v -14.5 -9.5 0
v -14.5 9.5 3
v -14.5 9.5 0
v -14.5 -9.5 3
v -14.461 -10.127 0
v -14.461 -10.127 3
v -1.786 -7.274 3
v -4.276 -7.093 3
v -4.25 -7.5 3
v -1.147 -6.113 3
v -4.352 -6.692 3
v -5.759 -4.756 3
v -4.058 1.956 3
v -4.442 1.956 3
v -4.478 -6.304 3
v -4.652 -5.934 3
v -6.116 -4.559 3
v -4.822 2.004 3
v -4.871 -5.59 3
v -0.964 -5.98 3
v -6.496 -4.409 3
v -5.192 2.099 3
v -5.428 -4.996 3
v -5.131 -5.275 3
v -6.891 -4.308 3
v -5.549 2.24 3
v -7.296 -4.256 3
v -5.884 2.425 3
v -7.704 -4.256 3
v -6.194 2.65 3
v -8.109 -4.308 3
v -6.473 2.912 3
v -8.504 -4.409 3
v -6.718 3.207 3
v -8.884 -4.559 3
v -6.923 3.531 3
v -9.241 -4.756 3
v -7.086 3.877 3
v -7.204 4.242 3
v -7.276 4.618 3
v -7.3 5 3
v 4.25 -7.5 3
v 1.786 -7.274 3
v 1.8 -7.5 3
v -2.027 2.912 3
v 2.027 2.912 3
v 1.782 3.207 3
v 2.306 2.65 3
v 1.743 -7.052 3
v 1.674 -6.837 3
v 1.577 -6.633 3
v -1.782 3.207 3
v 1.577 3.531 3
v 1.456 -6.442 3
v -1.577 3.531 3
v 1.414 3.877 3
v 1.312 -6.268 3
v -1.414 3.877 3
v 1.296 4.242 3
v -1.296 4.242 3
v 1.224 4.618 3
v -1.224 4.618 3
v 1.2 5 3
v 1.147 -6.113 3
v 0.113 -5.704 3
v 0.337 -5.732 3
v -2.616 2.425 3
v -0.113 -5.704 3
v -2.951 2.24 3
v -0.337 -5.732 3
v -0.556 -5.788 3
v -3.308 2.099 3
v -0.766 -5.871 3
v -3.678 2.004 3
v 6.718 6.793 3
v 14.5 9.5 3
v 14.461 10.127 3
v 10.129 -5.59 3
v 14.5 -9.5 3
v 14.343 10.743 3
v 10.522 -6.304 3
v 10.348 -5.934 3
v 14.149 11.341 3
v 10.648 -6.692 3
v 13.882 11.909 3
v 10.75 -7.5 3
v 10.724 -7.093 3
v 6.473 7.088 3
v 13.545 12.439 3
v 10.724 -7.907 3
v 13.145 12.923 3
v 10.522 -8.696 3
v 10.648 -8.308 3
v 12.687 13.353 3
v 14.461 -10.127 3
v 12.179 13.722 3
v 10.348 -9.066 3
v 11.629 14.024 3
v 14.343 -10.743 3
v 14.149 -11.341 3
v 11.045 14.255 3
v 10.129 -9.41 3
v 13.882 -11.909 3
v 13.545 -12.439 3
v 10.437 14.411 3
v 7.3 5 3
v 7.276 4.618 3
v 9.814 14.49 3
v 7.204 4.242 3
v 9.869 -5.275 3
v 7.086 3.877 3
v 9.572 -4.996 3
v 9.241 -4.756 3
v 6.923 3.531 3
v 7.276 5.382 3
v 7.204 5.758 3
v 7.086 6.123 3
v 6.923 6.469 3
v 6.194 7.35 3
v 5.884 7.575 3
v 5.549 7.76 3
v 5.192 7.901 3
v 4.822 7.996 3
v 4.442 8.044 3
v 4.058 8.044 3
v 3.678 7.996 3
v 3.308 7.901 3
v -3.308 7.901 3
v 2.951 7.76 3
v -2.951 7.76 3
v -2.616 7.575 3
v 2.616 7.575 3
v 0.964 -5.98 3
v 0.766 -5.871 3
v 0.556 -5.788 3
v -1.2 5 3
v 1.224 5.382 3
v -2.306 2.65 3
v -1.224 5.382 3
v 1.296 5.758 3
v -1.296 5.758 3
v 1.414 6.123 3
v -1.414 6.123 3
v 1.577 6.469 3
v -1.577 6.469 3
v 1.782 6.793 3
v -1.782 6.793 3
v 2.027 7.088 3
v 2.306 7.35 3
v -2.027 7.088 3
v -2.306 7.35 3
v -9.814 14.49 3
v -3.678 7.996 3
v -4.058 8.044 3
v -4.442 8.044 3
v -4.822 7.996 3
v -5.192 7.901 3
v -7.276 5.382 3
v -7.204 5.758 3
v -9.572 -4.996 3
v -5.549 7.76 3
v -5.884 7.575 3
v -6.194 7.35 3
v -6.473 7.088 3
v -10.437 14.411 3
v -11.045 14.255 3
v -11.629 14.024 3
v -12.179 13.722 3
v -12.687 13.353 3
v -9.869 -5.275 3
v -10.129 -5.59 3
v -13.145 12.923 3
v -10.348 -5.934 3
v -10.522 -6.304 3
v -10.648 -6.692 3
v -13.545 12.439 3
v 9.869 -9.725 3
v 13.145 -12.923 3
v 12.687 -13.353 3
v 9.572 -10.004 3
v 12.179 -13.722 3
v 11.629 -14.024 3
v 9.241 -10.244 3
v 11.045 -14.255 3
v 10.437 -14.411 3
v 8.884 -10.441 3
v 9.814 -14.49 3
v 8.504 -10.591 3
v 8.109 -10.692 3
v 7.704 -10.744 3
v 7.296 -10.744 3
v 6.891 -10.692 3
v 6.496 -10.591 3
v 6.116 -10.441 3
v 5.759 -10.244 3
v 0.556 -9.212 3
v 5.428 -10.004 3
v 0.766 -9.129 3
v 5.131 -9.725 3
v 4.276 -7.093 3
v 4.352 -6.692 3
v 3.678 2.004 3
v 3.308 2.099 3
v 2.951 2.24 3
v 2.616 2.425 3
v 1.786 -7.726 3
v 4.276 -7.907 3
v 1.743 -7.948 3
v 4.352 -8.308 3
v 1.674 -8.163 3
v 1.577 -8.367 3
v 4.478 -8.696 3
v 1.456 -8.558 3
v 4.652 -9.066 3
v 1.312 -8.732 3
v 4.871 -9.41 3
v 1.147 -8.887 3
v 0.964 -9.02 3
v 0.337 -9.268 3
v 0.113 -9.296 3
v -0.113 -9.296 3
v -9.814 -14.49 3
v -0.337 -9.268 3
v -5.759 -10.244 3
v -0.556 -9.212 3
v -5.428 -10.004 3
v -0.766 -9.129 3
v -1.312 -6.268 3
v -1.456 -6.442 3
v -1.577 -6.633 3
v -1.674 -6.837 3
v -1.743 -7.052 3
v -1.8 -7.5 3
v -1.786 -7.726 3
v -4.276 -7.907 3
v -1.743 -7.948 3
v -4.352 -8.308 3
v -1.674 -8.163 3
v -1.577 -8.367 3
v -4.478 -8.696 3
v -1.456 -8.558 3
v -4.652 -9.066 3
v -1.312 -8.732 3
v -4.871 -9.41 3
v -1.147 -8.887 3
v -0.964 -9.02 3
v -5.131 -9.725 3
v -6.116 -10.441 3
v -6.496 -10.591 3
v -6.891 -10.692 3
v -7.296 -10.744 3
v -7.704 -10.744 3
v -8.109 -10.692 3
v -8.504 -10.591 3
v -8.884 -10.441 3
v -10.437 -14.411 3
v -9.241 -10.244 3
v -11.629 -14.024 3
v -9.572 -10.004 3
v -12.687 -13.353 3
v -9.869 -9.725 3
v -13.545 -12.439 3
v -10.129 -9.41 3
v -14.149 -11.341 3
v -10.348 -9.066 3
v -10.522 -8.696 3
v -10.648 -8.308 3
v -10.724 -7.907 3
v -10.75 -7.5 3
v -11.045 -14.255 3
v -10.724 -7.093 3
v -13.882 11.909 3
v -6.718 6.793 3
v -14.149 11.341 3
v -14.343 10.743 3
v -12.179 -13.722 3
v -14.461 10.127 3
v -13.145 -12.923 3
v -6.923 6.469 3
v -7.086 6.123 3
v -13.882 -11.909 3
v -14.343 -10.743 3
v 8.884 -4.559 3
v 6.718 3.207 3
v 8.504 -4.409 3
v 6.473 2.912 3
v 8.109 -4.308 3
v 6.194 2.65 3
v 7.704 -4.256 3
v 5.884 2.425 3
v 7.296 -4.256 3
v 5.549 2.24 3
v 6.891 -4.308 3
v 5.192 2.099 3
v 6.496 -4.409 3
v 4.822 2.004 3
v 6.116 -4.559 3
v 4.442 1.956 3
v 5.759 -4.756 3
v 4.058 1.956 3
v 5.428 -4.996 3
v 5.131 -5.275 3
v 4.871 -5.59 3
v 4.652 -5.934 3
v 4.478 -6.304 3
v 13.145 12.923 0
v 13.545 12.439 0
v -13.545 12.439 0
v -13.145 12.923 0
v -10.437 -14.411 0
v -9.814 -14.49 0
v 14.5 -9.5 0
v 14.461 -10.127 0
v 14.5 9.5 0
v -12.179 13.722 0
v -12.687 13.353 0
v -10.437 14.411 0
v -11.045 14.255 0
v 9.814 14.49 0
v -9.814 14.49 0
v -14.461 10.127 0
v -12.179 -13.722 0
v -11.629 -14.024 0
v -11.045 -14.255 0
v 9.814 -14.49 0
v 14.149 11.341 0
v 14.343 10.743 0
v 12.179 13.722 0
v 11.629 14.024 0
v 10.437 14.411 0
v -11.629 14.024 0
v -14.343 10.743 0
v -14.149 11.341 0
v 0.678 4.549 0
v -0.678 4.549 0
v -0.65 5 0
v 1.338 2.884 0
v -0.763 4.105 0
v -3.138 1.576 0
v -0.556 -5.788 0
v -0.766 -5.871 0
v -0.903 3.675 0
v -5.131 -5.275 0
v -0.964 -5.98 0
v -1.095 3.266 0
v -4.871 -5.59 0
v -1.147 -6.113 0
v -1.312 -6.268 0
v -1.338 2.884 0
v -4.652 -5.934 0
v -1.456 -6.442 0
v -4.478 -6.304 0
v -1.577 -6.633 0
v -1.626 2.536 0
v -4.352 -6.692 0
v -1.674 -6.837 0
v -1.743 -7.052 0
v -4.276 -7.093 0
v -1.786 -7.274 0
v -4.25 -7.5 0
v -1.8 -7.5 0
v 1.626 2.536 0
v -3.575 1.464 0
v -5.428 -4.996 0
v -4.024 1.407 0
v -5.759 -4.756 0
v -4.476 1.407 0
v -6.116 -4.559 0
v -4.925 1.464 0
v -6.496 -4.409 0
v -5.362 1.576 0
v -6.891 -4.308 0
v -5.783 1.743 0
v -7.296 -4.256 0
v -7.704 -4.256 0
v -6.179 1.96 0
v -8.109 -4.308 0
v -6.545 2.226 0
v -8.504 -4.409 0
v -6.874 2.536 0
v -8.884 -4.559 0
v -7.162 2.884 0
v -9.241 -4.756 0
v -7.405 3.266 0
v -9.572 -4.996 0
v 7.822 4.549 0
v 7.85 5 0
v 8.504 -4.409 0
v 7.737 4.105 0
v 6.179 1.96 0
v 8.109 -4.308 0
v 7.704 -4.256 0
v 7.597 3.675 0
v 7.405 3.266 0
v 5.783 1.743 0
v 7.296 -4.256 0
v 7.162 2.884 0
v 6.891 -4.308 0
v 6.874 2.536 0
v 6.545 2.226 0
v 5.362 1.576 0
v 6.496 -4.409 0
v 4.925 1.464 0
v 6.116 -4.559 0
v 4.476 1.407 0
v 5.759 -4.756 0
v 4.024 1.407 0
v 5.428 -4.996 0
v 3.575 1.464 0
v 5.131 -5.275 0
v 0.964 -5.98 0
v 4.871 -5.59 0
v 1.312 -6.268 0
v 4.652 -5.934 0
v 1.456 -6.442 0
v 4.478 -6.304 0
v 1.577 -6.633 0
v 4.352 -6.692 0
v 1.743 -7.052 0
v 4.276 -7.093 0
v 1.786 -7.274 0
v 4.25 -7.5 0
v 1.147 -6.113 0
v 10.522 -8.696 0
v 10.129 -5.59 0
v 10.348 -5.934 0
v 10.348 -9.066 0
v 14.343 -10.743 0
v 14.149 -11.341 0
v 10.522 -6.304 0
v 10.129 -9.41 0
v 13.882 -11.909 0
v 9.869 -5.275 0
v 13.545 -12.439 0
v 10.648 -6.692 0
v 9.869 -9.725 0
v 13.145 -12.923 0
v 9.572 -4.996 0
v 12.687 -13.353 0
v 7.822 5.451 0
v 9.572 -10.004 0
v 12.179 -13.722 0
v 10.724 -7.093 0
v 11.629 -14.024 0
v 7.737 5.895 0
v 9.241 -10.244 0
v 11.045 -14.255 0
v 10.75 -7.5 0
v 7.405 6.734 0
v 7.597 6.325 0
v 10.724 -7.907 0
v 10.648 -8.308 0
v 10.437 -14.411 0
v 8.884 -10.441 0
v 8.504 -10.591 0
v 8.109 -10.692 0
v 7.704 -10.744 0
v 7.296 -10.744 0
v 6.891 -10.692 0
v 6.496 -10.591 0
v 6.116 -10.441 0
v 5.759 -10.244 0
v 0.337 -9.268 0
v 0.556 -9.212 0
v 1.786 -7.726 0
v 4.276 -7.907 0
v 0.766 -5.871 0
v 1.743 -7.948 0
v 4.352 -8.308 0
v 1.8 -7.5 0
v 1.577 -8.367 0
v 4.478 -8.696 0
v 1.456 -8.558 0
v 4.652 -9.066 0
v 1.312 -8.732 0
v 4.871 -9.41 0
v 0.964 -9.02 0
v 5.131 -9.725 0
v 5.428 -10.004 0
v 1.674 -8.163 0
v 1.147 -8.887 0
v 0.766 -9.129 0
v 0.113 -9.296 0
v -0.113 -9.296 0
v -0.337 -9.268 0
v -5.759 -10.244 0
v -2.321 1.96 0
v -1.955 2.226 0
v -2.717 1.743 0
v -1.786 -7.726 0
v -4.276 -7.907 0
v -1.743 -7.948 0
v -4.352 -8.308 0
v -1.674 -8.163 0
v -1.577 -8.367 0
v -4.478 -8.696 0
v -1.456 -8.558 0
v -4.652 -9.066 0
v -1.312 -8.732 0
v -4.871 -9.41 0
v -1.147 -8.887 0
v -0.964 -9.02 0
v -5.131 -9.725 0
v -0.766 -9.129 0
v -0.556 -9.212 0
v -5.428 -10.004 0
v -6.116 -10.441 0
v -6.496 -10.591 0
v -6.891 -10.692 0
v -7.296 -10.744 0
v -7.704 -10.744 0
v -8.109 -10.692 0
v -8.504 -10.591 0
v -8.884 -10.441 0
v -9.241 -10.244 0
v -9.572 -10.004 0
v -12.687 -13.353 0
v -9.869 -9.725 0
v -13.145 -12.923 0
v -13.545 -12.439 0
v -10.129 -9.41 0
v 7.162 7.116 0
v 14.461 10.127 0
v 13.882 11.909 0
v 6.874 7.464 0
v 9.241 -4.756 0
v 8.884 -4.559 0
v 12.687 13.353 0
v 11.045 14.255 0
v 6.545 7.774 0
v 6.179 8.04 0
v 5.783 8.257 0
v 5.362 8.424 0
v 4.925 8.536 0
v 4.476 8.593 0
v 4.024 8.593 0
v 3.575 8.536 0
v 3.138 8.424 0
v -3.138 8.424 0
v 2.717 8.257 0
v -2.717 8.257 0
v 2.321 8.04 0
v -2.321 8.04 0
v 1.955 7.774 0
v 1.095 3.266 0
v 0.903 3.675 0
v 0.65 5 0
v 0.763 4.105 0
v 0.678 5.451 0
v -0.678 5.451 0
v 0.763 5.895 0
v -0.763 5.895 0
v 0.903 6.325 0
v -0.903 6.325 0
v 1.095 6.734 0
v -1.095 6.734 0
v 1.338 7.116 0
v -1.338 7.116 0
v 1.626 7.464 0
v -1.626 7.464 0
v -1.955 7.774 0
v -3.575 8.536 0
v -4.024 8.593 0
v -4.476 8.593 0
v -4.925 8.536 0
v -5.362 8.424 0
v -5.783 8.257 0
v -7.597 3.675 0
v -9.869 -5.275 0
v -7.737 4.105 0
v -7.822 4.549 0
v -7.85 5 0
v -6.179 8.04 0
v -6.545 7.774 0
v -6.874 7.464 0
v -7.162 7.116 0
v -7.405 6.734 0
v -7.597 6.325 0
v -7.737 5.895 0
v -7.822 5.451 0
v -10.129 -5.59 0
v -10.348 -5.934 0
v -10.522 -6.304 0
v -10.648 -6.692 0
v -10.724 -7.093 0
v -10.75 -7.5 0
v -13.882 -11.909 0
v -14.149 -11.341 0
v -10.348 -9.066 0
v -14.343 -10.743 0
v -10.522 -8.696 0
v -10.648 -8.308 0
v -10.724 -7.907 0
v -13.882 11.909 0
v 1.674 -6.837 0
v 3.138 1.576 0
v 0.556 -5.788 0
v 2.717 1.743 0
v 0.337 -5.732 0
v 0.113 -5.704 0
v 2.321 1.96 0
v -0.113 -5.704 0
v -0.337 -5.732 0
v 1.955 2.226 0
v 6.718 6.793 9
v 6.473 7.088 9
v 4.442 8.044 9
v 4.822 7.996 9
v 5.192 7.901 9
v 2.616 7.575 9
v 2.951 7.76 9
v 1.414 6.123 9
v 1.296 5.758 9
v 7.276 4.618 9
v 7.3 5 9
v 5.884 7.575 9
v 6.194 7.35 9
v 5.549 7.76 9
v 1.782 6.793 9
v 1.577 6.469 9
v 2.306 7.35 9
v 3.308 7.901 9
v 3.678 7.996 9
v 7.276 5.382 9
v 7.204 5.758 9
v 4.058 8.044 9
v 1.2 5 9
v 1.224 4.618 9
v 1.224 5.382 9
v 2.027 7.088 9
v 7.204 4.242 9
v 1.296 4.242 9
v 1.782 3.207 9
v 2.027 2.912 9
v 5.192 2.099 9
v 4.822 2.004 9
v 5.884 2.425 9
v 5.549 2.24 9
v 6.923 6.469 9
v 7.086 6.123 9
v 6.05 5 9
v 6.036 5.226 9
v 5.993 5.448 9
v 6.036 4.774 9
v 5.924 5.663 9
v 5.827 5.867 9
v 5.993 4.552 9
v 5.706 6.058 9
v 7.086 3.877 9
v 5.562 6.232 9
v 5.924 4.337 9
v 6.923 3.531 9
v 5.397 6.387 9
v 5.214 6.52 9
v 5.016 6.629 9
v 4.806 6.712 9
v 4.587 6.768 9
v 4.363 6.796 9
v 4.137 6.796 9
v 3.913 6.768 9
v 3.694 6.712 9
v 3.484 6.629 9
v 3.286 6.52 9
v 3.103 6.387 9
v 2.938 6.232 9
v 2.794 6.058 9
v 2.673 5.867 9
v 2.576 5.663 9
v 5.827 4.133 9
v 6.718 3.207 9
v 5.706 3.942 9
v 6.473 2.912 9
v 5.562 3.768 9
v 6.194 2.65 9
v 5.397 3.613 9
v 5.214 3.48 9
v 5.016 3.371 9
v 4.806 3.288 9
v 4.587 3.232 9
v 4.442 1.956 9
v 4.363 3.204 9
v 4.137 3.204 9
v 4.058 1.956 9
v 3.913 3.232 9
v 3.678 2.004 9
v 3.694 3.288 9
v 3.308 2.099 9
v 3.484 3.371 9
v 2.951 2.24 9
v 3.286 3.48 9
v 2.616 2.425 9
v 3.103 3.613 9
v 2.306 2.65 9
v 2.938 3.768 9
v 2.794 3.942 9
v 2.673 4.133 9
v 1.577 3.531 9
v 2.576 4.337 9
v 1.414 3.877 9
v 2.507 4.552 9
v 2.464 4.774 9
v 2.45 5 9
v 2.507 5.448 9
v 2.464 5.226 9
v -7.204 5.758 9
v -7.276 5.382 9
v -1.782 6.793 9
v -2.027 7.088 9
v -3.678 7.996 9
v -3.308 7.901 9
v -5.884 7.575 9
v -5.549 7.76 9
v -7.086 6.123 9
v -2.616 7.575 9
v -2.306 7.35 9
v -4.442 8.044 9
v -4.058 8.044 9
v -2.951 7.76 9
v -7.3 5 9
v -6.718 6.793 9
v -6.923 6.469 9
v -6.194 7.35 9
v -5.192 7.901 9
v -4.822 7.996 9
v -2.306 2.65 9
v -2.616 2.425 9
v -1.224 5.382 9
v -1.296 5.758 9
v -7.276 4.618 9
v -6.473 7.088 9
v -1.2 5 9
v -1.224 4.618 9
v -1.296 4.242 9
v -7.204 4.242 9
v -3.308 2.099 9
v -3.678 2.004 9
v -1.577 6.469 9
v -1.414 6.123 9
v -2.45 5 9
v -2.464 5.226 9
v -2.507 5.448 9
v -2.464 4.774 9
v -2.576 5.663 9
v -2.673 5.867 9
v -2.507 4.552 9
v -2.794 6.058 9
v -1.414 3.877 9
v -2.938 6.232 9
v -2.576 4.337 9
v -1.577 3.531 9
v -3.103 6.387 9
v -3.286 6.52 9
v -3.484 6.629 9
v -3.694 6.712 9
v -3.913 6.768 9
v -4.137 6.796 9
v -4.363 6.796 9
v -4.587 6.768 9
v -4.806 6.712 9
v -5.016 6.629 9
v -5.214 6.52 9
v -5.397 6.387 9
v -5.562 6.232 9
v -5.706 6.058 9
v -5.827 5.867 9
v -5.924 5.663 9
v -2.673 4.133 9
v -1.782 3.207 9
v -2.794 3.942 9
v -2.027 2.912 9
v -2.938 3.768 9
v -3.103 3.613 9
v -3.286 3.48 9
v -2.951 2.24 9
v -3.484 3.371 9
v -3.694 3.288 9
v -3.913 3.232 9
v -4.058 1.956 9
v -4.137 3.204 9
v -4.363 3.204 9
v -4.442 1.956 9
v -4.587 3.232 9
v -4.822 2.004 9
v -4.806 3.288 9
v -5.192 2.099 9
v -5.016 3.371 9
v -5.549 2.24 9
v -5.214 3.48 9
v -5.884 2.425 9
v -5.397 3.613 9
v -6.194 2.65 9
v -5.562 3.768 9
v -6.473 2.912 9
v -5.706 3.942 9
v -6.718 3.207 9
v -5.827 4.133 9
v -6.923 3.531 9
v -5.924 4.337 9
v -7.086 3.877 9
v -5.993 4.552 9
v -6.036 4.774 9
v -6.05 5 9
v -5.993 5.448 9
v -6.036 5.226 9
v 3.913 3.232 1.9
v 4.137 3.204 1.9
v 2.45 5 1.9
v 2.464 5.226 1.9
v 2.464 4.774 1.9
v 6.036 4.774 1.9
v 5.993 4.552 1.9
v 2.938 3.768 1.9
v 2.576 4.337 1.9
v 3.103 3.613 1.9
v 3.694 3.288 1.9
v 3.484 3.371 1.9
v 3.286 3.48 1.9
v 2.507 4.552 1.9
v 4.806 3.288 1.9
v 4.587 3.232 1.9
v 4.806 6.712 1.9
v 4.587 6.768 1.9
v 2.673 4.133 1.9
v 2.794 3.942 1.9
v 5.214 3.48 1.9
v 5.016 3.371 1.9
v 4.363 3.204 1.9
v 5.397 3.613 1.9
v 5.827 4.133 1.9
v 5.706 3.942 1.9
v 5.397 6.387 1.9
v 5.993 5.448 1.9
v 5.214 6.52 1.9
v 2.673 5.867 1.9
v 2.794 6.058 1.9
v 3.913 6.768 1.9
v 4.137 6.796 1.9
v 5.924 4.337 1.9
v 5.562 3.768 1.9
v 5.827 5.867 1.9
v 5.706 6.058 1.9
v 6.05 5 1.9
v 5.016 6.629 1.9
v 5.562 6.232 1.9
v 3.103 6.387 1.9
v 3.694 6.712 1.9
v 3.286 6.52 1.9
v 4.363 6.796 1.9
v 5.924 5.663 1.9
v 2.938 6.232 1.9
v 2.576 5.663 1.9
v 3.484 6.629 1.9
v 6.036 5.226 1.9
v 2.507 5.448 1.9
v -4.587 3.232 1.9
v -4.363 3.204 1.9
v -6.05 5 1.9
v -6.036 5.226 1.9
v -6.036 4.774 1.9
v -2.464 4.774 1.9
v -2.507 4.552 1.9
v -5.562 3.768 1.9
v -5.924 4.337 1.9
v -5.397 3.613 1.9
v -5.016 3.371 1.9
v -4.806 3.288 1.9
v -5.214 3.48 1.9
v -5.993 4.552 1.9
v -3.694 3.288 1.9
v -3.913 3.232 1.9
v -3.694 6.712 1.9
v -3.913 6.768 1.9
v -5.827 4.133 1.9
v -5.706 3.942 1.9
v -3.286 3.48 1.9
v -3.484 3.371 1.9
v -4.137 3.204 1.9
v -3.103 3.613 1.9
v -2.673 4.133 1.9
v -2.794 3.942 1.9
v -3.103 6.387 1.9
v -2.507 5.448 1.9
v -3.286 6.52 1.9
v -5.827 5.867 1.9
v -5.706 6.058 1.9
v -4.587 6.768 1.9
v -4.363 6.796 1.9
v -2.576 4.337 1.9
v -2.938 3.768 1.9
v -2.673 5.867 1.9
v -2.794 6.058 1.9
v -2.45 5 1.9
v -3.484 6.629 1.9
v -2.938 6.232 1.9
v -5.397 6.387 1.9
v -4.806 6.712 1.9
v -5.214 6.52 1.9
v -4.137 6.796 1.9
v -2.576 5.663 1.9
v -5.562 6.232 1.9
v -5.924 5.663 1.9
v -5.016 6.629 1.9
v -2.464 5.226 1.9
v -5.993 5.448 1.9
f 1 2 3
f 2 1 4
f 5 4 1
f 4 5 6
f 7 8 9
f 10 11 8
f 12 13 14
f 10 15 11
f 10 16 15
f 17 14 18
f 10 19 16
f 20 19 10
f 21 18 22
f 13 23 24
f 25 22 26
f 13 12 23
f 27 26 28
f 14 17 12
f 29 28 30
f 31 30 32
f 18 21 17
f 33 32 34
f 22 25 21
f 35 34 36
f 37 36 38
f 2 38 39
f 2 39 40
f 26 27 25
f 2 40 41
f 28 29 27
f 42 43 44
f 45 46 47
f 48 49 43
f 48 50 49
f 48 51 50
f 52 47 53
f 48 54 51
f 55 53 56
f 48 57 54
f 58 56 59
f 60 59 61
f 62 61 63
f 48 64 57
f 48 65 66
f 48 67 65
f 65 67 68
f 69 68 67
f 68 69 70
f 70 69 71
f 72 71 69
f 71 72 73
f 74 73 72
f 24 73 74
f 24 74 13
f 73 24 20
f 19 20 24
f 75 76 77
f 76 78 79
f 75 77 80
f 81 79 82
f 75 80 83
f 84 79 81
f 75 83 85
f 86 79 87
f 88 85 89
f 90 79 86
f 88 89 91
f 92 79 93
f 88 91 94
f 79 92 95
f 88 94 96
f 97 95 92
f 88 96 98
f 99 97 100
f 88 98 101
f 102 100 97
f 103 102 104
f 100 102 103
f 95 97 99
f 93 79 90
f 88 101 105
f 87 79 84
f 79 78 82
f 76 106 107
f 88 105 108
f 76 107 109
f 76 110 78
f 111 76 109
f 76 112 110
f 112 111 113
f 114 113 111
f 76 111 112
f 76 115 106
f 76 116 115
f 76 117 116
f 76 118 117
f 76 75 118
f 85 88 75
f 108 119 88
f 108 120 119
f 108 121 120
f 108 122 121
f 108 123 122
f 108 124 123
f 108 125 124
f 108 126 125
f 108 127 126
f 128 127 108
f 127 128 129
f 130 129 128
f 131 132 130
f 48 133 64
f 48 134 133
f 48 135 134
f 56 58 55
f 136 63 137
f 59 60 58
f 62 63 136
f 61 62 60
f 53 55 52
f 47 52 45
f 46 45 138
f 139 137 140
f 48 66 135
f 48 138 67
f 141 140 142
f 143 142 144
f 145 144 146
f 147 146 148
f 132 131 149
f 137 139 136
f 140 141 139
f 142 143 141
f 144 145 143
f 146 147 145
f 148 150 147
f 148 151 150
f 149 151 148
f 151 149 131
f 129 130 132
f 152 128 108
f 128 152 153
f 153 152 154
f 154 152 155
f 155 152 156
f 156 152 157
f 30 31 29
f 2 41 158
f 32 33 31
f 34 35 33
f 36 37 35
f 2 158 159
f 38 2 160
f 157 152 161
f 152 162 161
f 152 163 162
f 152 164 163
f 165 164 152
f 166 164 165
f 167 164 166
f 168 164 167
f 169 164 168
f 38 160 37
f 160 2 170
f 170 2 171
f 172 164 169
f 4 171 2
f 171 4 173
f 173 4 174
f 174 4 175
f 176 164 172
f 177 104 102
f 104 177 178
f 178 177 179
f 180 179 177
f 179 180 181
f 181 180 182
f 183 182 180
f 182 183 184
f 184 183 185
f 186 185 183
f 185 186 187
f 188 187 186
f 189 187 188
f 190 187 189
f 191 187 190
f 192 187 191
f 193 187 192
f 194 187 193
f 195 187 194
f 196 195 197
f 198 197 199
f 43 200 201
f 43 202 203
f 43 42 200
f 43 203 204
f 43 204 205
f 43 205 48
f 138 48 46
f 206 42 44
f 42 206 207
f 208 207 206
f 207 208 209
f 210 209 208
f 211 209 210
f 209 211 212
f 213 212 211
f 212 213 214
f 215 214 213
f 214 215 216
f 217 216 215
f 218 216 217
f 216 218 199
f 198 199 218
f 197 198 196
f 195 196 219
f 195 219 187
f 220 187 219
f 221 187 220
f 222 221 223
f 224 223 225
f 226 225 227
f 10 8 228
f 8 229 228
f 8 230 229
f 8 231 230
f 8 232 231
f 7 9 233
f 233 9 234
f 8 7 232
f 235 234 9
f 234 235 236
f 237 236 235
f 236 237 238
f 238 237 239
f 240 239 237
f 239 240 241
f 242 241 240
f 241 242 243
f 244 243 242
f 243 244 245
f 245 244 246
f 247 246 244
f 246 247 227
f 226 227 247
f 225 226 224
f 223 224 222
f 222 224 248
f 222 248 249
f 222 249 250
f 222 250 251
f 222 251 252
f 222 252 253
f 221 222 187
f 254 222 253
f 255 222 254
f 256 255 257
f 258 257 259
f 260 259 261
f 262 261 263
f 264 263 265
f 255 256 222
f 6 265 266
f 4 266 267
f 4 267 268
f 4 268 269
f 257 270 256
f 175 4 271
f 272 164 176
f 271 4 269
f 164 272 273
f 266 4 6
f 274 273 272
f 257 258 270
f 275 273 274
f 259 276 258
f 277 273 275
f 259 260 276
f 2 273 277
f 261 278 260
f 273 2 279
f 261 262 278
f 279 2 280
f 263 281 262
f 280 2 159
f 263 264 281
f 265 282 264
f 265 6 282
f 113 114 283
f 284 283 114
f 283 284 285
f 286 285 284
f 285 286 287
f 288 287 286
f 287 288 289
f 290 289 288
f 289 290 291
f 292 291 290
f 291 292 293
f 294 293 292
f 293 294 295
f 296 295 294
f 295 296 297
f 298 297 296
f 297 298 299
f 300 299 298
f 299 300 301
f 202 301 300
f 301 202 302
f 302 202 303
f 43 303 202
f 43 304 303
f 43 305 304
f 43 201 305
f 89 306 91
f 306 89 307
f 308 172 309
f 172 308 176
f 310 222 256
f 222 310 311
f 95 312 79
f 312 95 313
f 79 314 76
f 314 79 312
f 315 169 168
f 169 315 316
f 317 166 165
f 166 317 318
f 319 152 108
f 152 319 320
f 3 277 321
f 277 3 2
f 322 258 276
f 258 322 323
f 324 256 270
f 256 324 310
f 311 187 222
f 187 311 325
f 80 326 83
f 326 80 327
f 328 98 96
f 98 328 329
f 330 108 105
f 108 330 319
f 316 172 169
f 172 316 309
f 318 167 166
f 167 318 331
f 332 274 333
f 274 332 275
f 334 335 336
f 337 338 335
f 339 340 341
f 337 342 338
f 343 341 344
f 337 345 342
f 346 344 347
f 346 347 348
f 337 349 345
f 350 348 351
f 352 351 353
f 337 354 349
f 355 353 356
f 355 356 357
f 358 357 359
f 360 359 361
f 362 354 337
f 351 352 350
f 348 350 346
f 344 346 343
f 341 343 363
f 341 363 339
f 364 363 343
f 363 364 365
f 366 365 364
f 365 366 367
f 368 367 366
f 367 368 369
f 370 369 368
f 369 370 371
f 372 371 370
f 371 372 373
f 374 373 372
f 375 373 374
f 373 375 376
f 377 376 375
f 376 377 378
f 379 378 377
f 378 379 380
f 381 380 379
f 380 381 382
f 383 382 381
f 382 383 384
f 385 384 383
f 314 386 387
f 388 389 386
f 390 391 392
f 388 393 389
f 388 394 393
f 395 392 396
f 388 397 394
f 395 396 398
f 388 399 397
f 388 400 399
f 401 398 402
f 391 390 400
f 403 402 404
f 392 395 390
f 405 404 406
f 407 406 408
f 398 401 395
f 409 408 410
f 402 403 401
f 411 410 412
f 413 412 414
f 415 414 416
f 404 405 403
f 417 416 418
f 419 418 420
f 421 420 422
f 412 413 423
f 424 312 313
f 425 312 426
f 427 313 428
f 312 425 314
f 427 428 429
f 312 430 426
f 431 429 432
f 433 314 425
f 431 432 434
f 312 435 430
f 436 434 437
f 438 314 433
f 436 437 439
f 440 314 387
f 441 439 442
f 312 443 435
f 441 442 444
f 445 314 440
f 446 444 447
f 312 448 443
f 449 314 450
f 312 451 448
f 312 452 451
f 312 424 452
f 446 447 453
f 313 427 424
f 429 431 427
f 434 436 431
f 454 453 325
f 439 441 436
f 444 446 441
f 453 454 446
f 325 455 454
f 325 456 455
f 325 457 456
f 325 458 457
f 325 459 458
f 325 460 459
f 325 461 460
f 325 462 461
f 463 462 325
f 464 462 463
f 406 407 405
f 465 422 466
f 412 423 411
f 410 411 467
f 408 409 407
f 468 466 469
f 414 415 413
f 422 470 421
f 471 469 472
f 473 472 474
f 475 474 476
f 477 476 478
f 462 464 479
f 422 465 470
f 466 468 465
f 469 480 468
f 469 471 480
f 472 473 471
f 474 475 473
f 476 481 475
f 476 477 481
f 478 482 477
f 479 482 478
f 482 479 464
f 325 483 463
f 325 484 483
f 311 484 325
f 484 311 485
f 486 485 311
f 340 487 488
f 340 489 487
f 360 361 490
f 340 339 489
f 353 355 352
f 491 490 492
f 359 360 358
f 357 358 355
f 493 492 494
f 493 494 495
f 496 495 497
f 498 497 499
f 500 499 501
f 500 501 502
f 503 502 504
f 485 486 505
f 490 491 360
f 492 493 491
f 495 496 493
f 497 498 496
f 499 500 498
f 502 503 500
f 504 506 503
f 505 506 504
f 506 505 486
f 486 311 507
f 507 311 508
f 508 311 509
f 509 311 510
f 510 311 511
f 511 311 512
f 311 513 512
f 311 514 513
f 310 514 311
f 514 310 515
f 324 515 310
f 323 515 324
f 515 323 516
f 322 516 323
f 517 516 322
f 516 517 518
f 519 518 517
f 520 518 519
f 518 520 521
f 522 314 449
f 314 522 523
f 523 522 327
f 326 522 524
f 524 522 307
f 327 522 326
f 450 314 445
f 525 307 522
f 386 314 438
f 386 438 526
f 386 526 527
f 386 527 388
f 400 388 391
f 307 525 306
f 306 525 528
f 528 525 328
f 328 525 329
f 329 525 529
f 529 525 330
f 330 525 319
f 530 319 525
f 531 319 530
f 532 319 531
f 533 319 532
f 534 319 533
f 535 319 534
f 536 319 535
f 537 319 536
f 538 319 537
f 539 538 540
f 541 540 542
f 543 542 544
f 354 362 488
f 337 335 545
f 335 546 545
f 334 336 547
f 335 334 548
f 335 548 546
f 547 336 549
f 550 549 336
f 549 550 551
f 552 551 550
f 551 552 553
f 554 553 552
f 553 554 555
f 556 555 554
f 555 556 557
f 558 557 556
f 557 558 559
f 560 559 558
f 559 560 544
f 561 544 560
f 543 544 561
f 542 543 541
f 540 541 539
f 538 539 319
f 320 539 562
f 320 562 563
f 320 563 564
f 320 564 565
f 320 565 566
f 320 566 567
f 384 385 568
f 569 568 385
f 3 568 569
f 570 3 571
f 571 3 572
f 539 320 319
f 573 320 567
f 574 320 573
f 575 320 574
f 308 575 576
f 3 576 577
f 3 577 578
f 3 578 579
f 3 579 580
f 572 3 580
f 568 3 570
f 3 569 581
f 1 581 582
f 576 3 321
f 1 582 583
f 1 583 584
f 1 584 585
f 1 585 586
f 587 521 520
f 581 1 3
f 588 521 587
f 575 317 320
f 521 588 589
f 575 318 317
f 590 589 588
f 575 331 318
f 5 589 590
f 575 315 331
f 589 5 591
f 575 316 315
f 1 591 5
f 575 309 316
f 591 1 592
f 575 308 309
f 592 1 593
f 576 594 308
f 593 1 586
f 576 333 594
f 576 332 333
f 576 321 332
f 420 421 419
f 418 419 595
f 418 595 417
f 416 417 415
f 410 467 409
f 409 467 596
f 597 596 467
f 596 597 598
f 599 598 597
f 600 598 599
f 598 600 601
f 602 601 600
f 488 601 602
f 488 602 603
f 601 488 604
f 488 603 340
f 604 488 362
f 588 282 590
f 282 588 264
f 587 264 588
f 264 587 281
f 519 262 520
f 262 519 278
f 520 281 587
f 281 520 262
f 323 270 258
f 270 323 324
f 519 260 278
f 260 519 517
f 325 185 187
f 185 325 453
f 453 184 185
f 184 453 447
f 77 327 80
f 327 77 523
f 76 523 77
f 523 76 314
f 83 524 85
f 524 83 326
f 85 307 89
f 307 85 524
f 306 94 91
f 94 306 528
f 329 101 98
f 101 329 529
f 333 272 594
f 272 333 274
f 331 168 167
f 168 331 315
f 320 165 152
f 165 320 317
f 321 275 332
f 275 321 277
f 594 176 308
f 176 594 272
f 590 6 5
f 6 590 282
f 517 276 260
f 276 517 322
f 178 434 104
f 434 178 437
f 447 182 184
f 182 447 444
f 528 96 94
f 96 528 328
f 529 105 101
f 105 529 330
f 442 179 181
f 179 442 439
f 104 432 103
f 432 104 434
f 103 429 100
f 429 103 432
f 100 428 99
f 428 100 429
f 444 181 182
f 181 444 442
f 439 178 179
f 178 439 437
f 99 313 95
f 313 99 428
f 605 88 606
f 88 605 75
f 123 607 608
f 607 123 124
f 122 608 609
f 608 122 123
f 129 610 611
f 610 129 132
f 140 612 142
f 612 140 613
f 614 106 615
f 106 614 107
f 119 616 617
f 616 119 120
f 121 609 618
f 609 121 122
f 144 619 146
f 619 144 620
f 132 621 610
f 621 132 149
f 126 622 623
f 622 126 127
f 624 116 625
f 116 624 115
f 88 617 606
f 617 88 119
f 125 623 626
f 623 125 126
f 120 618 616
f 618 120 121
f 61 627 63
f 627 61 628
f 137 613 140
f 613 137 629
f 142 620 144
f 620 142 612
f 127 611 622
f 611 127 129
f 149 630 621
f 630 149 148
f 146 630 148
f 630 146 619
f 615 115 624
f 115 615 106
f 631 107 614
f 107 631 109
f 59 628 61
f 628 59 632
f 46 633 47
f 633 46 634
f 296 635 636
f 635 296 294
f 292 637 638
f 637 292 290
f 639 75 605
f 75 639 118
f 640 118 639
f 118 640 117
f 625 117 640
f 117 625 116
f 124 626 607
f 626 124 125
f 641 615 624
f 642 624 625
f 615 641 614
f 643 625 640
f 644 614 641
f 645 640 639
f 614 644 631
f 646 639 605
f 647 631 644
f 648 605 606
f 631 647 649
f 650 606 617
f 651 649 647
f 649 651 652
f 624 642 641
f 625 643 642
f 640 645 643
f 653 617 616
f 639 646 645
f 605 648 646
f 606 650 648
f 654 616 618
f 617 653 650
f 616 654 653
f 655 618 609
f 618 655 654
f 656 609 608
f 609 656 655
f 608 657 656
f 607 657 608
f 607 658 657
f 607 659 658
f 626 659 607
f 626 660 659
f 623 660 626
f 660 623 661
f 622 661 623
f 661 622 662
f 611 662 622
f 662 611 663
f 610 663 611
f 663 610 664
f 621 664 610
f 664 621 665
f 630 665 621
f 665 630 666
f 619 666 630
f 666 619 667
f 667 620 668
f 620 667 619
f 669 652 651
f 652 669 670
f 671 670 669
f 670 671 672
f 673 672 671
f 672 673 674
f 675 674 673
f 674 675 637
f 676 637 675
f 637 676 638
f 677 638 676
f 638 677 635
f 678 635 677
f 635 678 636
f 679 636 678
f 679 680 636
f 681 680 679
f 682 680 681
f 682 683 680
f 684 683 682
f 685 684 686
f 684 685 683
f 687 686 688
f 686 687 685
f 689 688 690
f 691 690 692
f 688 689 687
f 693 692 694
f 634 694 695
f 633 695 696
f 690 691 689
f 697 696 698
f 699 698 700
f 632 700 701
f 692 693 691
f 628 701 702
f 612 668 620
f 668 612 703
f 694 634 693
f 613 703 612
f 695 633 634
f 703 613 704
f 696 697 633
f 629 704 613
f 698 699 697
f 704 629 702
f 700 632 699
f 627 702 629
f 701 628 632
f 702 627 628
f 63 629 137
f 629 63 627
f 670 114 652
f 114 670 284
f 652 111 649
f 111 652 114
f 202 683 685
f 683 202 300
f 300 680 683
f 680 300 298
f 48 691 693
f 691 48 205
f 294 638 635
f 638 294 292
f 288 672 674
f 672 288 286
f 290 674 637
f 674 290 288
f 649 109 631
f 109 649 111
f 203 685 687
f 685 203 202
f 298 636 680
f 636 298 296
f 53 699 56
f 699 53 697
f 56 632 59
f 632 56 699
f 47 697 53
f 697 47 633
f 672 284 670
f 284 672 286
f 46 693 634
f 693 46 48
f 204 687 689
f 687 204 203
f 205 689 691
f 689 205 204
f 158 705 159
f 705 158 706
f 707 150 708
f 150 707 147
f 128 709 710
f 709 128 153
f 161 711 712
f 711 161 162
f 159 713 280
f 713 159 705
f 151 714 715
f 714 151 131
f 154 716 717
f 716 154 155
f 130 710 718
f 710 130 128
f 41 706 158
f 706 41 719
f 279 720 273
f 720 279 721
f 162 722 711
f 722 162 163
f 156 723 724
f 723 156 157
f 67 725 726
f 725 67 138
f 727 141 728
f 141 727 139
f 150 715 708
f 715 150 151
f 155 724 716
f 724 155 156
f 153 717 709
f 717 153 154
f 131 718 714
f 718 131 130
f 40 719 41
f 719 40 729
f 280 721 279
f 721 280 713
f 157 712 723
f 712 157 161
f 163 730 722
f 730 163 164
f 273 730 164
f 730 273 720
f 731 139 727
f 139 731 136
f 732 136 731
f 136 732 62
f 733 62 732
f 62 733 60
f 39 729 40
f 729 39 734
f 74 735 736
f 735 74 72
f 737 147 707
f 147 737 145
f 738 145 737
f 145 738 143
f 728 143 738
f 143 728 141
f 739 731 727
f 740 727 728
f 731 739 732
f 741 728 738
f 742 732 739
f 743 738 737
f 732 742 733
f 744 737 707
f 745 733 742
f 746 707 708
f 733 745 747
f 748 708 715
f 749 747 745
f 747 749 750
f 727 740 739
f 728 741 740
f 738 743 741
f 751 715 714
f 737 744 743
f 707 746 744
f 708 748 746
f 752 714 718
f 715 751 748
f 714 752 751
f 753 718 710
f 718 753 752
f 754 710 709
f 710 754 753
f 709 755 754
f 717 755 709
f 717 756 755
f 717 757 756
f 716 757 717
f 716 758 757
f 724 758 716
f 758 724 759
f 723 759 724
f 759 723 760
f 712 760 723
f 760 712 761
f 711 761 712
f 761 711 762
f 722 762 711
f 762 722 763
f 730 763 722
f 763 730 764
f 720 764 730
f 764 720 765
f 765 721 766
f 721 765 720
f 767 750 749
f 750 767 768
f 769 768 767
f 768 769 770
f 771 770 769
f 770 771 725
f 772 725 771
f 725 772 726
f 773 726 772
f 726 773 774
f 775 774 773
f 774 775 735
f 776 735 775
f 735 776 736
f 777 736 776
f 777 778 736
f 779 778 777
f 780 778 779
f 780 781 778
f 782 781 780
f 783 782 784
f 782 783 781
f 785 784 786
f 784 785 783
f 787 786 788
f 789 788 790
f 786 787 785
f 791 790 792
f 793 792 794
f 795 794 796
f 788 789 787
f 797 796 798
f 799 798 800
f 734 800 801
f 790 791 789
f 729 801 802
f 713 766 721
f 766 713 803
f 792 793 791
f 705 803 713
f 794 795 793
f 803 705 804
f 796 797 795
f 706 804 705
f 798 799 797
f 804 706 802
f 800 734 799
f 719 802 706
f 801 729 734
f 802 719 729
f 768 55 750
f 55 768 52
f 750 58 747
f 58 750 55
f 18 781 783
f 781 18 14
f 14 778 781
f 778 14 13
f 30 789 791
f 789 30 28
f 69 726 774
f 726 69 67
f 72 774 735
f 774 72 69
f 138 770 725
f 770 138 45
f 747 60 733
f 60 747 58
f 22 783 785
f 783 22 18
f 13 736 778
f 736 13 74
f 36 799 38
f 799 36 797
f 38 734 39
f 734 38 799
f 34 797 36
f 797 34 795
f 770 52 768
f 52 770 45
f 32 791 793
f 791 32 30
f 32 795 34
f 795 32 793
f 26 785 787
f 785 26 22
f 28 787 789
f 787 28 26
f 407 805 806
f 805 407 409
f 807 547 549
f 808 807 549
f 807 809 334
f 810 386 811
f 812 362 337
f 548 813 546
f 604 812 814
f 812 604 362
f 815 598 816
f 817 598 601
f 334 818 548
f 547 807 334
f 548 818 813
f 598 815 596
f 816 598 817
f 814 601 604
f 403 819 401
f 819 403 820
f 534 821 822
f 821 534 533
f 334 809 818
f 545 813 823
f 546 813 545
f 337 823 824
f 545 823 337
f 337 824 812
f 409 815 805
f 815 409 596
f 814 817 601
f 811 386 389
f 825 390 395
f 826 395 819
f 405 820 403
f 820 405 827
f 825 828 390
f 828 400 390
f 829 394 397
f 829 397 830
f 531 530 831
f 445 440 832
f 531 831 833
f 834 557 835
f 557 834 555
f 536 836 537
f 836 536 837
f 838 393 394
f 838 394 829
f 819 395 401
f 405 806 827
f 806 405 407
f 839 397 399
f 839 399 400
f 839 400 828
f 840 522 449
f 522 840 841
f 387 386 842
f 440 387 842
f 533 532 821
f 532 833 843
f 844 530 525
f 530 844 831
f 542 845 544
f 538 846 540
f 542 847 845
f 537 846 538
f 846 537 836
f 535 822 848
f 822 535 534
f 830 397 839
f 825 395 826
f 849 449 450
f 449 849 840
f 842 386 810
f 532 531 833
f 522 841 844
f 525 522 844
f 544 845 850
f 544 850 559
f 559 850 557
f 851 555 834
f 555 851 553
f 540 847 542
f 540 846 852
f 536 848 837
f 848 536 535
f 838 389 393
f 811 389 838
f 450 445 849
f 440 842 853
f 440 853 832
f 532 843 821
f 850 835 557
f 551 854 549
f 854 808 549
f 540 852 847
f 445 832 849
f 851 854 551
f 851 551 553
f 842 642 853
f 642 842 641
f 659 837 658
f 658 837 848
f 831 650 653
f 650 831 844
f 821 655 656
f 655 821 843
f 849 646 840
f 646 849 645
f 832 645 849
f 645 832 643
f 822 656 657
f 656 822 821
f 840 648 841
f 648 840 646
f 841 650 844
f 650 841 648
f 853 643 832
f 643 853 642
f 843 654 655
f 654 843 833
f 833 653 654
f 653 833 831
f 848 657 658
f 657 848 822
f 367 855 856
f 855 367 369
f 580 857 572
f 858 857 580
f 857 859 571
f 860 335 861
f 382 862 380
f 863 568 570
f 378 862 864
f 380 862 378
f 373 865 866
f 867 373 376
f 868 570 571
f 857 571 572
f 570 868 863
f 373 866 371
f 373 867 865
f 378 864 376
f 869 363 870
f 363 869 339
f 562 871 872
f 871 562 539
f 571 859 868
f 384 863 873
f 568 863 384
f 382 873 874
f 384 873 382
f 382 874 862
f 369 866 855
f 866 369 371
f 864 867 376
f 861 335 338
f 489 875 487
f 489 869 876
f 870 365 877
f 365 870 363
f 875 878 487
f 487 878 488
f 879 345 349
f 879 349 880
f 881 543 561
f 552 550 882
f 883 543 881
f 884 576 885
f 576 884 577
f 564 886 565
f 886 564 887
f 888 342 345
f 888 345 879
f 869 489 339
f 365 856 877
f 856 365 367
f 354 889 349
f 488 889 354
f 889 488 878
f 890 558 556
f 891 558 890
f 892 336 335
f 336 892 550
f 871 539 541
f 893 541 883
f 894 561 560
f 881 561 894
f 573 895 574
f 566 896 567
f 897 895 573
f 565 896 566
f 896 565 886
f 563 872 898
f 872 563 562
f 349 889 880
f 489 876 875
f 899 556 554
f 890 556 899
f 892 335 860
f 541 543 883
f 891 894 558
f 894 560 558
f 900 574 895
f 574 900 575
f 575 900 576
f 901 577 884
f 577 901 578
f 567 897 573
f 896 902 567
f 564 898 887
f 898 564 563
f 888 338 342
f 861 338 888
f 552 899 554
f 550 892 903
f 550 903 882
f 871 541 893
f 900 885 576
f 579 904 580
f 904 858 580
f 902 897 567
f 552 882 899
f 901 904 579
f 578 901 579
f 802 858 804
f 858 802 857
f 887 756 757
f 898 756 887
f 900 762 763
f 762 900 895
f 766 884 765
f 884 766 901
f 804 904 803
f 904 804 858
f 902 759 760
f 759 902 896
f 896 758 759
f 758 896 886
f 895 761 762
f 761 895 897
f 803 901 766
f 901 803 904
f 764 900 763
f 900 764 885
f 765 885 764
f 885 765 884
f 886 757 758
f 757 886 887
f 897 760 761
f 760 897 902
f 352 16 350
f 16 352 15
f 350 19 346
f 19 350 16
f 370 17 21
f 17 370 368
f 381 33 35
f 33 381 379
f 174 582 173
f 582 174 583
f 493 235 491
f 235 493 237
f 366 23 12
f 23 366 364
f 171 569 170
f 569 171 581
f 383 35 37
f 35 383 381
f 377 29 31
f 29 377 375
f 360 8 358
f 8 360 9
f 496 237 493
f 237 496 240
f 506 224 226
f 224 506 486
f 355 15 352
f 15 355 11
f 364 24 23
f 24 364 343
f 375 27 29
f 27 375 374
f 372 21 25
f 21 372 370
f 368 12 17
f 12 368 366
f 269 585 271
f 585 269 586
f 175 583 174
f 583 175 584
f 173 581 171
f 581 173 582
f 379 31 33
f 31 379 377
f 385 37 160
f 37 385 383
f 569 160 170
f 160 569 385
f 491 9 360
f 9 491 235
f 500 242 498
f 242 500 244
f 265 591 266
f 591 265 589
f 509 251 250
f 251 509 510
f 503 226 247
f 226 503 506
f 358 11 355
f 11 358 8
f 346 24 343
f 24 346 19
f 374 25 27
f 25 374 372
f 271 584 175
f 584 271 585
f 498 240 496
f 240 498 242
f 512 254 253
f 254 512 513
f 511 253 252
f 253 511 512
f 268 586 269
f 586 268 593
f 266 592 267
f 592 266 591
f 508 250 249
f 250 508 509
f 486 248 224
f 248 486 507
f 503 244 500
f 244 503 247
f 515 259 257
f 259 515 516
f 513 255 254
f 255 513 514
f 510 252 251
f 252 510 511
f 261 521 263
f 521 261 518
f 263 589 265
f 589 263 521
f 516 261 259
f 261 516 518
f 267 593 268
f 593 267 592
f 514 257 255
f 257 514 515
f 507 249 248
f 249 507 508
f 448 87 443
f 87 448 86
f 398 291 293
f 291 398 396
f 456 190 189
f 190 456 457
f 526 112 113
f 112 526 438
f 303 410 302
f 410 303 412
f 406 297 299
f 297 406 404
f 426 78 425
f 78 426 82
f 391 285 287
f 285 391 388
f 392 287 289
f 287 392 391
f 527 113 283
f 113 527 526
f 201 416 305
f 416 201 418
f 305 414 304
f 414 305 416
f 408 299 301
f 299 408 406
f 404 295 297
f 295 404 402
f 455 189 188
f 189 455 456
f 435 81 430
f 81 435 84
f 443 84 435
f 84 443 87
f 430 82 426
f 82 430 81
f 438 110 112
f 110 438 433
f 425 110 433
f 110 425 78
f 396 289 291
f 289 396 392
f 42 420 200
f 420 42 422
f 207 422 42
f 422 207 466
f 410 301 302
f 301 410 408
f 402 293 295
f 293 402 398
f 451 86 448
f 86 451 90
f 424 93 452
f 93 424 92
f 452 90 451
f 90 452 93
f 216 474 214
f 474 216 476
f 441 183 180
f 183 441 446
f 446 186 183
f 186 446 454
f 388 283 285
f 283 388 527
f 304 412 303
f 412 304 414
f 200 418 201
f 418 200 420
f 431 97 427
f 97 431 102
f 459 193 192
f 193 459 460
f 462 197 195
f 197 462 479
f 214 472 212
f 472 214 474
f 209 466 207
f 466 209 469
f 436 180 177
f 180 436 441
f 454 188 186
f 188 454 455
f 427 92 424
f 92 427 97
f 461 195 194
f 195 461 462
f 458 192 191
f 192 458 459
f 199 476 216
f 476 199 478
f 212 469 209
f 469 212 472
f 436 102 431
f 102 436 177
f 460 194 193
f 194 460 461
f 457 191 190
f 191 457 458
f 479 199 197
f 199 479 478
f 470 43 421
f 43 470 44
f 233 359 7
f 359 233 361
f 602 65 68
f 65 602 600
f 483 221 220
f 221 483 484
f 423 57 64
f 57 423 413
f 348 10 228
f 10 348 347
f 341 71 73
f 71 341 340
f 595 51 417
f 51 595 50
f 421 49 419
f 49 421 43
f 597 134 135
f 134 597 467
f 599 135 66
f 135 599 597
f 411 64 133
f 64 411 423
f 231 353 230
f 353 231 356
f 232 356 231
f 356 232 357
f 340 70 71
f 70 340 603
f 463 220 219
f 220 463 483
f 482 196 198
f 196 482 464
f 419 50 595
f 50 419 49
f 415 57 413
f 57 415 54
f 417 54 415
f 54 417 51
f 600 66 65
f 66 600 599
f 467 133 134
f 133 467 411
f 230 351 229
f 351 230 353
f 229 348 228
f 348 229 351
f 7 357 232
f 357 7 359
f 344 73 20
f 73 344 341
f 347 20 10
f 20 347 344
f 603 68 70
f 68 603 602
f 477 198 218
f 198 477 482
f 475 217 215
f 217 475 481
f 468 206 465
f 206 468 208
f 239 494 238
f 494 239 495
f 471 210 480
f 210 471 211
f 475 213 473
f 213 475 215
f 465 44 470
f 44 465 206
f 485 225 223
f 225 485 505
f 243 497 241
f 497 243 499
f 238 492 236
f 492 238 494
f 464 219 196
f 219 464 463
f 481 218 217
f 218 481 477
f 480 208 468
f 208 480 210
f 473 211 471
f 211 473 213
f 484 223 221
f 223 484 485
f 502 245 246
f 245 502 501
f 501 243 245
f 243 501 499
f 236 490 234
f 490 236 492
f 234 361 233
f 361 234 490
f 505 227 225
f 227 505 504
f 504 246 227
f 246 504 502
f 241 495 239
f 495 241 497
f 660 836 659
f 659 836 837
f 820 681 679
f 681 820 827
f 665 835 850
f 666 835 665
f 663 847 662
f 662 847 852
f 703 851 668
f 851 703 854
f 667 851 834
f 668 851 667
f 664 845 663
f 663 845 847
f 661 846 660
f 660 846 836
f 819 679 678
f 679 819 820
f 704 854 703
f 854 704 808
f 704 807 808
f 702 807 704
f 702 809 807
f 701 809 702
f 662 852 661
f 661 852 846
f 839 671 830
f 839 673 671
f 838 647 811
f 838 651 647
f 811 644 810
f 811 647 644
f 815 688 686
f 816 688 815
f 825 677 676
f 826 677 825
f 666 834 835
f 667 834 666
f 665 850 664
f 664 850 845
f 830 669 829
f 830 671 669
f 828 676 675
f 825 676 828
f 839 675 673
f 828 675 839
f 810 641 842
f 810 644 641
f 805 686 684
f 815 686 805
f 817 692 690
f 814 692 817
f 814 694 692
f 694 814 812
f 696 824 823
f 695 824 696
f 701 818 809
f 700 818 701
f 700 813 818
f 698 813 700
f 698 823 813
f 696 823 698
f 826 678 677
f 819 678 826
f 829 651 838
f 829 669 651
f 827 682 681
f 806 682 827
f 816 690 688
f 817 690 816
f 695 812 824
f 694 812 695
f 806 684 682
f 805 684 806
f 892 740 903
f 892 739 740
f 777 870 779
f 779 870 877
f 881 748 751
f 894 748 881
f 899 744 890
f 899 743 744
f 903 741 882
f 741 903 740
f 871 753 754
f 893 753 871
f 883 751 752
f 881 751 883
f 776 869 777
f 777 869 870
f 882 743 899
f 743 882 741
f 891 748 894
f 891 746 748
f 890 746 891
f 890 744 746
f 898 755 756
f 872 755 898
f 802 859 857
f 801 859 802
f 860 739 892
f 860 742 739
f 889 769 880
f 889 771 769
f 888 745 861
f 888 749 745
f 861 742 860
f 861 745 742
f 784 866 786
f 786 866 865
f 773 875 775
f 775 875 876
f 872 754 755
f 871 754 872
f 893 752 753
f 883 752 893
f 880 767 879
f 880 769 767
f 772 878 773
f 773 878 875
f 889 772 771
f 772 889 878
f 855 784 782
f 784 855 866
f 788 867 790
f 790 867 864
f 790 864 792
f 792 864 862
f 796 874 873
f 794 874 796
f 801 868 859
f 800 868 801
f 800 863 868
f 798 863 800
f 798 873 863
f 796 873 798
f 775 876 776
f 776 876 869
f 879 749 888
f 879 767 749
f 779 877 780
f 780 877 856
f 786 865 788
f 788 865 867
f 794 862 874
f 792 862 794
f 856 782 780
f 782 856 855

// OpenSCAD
$fn = 50;


difference() {
	union() {
		hull() {
			translate(v = [-9.5000000000, 9.5000000000, 0]) {
				cylinder(h = 3, r = 5);
			}
			translate(v = [9.5000000000, 9.5000000000, 0]) {
				cylinder(h = 3, r = 5);
			}
			translate(v = [-9.5000000000, -9.5000000000, 0]) {
				cylinder(h = 3, r = 5);
			}
			translate(v = [9.5000000000, -9.5000000000, 0]) {
				cylinder(h = 3, r = 5);
			}
		}
		translate(v = [4.2500000000, 5.0000000000, 0]) {
			cylinder(h = 9, r = 3.0500000000);
		}
		translate(v = [-4.2500000000, 5.0000000000, 0]) {
			cylinder(h = 9, r = 3.0500000000);
		}
	}
	union() {
		translate(v = [4.2500000000, 5.0000000000, 0]) {
			rotate(a = [0, 180, 0]) {
				difference() {
					union() {
						#translate(v = [0, 0, -9.0000000000]) {
							cylinder(h = 9, r = 1.5000000000);
						}
						#translate(v = [0, 0, -1.9000000000]) {
							cylinder(h = 1.9000000000, r1 = 1.8000000000, r2 = 3.6000000000);
						}
						#translate(v = [0, 0, -9.0000000000]) {
							cylinder(h = 9, r = 1.8000000000);
						}
						#translate(v = [0, 0, -9.0000000000]) {
							cylinder(h = 9, r = 1.5000000000);
						}
					}
					union();
				}
			}
		}
		translate(v = [-4.2500000000, 5.0000000000, 0]) {
			rotate(a = [0, 180, 0]) {
				difference() {
					union() {
						#translate(v = [0, 0, -9.0000000000]) {
							cylinder(h = 9, r = 1.5000000000);
						}
						#translate(v = [0, 0, -1.9000000000]) {
							cylinder(h = 1.9000000000, r1 = 1.8000000000, r2 = 3.6000000000);
						}
						#translate(v = [0, 0, -9.0000000000]) {
							cylinder(h = 9, r = 1.8000000000);
						}
						#translate(v = [0, 0, -9.0000000000]) {
							cylinder(h = 9, r = 1.5000000000);
						}
					}
					union();
				}
			}
		}
		translate(v = [-7.5000000000, -7.5000000000, -50.0000000000]) {
			cylinder(h = 100, r = 3.2500000000);
		}
		translate(v = [7.5000000000, -7.5000000000, -50.0000000000]) {
			cylinder(h = 100, r = 3.2500000000);
		}
		translate(v = [-7.5000000000, -7.5000000000, -50.0000000000]) {
			cylinder(h = 100, r = 1.8000000000);
		}
		translate(v = [0.0000000000, -7.5000000000, -50.0000000000]) {
			cylinder(h = 100, r = 1.8000000000);
		}
		translate(v = [7.5000000000, -7.5000000000, -50.0000000000]) {
			cylinder(h = 100, r = 1.8000000000);
		}
		translate(v = [-7.5000000000, -7.5000000000, -50.0000000000]) {
			cylinder(h = 100, r = 1.8000000000);
		}
		translate(v = [0.0000000000, -7.5000000000, -50.0000000000]) {
			cylinder(h = 100, r = 1.8000000000);
		}
		translate(v = [7.5000000000, -7.5000000000, -50.0000000000]) {
			cylinder(h = 100, r = 1.8000000000);
		}
		translate(v = [-7.5000000000, -7.5000000000, -50.0000000000]) {
			cylinder(h = 100, r = 1.8000000000);
		}
		translate(v = [0.0000000000, -7.5000000000, -50.0000000000]) {
			cylinder(h = 100, r = 1.8000000000);
		}
		translate(v = [7.5000000000, -7.5000000000, -50.0000000000]) {
			cylinder(h = 100, r = 1.8000000000);
		}
		translate(v = [4.2500000000, 5.0000000000, -50.0000000000]) {
			cylinder(h = 100, r = 1.8000000000);
		}
		translate(v = [-4.2500000000, 5.0000000000, -50.0000000000]) {
			cylinder(h = 100, r = 1.8000000000);
		}
	}
}
